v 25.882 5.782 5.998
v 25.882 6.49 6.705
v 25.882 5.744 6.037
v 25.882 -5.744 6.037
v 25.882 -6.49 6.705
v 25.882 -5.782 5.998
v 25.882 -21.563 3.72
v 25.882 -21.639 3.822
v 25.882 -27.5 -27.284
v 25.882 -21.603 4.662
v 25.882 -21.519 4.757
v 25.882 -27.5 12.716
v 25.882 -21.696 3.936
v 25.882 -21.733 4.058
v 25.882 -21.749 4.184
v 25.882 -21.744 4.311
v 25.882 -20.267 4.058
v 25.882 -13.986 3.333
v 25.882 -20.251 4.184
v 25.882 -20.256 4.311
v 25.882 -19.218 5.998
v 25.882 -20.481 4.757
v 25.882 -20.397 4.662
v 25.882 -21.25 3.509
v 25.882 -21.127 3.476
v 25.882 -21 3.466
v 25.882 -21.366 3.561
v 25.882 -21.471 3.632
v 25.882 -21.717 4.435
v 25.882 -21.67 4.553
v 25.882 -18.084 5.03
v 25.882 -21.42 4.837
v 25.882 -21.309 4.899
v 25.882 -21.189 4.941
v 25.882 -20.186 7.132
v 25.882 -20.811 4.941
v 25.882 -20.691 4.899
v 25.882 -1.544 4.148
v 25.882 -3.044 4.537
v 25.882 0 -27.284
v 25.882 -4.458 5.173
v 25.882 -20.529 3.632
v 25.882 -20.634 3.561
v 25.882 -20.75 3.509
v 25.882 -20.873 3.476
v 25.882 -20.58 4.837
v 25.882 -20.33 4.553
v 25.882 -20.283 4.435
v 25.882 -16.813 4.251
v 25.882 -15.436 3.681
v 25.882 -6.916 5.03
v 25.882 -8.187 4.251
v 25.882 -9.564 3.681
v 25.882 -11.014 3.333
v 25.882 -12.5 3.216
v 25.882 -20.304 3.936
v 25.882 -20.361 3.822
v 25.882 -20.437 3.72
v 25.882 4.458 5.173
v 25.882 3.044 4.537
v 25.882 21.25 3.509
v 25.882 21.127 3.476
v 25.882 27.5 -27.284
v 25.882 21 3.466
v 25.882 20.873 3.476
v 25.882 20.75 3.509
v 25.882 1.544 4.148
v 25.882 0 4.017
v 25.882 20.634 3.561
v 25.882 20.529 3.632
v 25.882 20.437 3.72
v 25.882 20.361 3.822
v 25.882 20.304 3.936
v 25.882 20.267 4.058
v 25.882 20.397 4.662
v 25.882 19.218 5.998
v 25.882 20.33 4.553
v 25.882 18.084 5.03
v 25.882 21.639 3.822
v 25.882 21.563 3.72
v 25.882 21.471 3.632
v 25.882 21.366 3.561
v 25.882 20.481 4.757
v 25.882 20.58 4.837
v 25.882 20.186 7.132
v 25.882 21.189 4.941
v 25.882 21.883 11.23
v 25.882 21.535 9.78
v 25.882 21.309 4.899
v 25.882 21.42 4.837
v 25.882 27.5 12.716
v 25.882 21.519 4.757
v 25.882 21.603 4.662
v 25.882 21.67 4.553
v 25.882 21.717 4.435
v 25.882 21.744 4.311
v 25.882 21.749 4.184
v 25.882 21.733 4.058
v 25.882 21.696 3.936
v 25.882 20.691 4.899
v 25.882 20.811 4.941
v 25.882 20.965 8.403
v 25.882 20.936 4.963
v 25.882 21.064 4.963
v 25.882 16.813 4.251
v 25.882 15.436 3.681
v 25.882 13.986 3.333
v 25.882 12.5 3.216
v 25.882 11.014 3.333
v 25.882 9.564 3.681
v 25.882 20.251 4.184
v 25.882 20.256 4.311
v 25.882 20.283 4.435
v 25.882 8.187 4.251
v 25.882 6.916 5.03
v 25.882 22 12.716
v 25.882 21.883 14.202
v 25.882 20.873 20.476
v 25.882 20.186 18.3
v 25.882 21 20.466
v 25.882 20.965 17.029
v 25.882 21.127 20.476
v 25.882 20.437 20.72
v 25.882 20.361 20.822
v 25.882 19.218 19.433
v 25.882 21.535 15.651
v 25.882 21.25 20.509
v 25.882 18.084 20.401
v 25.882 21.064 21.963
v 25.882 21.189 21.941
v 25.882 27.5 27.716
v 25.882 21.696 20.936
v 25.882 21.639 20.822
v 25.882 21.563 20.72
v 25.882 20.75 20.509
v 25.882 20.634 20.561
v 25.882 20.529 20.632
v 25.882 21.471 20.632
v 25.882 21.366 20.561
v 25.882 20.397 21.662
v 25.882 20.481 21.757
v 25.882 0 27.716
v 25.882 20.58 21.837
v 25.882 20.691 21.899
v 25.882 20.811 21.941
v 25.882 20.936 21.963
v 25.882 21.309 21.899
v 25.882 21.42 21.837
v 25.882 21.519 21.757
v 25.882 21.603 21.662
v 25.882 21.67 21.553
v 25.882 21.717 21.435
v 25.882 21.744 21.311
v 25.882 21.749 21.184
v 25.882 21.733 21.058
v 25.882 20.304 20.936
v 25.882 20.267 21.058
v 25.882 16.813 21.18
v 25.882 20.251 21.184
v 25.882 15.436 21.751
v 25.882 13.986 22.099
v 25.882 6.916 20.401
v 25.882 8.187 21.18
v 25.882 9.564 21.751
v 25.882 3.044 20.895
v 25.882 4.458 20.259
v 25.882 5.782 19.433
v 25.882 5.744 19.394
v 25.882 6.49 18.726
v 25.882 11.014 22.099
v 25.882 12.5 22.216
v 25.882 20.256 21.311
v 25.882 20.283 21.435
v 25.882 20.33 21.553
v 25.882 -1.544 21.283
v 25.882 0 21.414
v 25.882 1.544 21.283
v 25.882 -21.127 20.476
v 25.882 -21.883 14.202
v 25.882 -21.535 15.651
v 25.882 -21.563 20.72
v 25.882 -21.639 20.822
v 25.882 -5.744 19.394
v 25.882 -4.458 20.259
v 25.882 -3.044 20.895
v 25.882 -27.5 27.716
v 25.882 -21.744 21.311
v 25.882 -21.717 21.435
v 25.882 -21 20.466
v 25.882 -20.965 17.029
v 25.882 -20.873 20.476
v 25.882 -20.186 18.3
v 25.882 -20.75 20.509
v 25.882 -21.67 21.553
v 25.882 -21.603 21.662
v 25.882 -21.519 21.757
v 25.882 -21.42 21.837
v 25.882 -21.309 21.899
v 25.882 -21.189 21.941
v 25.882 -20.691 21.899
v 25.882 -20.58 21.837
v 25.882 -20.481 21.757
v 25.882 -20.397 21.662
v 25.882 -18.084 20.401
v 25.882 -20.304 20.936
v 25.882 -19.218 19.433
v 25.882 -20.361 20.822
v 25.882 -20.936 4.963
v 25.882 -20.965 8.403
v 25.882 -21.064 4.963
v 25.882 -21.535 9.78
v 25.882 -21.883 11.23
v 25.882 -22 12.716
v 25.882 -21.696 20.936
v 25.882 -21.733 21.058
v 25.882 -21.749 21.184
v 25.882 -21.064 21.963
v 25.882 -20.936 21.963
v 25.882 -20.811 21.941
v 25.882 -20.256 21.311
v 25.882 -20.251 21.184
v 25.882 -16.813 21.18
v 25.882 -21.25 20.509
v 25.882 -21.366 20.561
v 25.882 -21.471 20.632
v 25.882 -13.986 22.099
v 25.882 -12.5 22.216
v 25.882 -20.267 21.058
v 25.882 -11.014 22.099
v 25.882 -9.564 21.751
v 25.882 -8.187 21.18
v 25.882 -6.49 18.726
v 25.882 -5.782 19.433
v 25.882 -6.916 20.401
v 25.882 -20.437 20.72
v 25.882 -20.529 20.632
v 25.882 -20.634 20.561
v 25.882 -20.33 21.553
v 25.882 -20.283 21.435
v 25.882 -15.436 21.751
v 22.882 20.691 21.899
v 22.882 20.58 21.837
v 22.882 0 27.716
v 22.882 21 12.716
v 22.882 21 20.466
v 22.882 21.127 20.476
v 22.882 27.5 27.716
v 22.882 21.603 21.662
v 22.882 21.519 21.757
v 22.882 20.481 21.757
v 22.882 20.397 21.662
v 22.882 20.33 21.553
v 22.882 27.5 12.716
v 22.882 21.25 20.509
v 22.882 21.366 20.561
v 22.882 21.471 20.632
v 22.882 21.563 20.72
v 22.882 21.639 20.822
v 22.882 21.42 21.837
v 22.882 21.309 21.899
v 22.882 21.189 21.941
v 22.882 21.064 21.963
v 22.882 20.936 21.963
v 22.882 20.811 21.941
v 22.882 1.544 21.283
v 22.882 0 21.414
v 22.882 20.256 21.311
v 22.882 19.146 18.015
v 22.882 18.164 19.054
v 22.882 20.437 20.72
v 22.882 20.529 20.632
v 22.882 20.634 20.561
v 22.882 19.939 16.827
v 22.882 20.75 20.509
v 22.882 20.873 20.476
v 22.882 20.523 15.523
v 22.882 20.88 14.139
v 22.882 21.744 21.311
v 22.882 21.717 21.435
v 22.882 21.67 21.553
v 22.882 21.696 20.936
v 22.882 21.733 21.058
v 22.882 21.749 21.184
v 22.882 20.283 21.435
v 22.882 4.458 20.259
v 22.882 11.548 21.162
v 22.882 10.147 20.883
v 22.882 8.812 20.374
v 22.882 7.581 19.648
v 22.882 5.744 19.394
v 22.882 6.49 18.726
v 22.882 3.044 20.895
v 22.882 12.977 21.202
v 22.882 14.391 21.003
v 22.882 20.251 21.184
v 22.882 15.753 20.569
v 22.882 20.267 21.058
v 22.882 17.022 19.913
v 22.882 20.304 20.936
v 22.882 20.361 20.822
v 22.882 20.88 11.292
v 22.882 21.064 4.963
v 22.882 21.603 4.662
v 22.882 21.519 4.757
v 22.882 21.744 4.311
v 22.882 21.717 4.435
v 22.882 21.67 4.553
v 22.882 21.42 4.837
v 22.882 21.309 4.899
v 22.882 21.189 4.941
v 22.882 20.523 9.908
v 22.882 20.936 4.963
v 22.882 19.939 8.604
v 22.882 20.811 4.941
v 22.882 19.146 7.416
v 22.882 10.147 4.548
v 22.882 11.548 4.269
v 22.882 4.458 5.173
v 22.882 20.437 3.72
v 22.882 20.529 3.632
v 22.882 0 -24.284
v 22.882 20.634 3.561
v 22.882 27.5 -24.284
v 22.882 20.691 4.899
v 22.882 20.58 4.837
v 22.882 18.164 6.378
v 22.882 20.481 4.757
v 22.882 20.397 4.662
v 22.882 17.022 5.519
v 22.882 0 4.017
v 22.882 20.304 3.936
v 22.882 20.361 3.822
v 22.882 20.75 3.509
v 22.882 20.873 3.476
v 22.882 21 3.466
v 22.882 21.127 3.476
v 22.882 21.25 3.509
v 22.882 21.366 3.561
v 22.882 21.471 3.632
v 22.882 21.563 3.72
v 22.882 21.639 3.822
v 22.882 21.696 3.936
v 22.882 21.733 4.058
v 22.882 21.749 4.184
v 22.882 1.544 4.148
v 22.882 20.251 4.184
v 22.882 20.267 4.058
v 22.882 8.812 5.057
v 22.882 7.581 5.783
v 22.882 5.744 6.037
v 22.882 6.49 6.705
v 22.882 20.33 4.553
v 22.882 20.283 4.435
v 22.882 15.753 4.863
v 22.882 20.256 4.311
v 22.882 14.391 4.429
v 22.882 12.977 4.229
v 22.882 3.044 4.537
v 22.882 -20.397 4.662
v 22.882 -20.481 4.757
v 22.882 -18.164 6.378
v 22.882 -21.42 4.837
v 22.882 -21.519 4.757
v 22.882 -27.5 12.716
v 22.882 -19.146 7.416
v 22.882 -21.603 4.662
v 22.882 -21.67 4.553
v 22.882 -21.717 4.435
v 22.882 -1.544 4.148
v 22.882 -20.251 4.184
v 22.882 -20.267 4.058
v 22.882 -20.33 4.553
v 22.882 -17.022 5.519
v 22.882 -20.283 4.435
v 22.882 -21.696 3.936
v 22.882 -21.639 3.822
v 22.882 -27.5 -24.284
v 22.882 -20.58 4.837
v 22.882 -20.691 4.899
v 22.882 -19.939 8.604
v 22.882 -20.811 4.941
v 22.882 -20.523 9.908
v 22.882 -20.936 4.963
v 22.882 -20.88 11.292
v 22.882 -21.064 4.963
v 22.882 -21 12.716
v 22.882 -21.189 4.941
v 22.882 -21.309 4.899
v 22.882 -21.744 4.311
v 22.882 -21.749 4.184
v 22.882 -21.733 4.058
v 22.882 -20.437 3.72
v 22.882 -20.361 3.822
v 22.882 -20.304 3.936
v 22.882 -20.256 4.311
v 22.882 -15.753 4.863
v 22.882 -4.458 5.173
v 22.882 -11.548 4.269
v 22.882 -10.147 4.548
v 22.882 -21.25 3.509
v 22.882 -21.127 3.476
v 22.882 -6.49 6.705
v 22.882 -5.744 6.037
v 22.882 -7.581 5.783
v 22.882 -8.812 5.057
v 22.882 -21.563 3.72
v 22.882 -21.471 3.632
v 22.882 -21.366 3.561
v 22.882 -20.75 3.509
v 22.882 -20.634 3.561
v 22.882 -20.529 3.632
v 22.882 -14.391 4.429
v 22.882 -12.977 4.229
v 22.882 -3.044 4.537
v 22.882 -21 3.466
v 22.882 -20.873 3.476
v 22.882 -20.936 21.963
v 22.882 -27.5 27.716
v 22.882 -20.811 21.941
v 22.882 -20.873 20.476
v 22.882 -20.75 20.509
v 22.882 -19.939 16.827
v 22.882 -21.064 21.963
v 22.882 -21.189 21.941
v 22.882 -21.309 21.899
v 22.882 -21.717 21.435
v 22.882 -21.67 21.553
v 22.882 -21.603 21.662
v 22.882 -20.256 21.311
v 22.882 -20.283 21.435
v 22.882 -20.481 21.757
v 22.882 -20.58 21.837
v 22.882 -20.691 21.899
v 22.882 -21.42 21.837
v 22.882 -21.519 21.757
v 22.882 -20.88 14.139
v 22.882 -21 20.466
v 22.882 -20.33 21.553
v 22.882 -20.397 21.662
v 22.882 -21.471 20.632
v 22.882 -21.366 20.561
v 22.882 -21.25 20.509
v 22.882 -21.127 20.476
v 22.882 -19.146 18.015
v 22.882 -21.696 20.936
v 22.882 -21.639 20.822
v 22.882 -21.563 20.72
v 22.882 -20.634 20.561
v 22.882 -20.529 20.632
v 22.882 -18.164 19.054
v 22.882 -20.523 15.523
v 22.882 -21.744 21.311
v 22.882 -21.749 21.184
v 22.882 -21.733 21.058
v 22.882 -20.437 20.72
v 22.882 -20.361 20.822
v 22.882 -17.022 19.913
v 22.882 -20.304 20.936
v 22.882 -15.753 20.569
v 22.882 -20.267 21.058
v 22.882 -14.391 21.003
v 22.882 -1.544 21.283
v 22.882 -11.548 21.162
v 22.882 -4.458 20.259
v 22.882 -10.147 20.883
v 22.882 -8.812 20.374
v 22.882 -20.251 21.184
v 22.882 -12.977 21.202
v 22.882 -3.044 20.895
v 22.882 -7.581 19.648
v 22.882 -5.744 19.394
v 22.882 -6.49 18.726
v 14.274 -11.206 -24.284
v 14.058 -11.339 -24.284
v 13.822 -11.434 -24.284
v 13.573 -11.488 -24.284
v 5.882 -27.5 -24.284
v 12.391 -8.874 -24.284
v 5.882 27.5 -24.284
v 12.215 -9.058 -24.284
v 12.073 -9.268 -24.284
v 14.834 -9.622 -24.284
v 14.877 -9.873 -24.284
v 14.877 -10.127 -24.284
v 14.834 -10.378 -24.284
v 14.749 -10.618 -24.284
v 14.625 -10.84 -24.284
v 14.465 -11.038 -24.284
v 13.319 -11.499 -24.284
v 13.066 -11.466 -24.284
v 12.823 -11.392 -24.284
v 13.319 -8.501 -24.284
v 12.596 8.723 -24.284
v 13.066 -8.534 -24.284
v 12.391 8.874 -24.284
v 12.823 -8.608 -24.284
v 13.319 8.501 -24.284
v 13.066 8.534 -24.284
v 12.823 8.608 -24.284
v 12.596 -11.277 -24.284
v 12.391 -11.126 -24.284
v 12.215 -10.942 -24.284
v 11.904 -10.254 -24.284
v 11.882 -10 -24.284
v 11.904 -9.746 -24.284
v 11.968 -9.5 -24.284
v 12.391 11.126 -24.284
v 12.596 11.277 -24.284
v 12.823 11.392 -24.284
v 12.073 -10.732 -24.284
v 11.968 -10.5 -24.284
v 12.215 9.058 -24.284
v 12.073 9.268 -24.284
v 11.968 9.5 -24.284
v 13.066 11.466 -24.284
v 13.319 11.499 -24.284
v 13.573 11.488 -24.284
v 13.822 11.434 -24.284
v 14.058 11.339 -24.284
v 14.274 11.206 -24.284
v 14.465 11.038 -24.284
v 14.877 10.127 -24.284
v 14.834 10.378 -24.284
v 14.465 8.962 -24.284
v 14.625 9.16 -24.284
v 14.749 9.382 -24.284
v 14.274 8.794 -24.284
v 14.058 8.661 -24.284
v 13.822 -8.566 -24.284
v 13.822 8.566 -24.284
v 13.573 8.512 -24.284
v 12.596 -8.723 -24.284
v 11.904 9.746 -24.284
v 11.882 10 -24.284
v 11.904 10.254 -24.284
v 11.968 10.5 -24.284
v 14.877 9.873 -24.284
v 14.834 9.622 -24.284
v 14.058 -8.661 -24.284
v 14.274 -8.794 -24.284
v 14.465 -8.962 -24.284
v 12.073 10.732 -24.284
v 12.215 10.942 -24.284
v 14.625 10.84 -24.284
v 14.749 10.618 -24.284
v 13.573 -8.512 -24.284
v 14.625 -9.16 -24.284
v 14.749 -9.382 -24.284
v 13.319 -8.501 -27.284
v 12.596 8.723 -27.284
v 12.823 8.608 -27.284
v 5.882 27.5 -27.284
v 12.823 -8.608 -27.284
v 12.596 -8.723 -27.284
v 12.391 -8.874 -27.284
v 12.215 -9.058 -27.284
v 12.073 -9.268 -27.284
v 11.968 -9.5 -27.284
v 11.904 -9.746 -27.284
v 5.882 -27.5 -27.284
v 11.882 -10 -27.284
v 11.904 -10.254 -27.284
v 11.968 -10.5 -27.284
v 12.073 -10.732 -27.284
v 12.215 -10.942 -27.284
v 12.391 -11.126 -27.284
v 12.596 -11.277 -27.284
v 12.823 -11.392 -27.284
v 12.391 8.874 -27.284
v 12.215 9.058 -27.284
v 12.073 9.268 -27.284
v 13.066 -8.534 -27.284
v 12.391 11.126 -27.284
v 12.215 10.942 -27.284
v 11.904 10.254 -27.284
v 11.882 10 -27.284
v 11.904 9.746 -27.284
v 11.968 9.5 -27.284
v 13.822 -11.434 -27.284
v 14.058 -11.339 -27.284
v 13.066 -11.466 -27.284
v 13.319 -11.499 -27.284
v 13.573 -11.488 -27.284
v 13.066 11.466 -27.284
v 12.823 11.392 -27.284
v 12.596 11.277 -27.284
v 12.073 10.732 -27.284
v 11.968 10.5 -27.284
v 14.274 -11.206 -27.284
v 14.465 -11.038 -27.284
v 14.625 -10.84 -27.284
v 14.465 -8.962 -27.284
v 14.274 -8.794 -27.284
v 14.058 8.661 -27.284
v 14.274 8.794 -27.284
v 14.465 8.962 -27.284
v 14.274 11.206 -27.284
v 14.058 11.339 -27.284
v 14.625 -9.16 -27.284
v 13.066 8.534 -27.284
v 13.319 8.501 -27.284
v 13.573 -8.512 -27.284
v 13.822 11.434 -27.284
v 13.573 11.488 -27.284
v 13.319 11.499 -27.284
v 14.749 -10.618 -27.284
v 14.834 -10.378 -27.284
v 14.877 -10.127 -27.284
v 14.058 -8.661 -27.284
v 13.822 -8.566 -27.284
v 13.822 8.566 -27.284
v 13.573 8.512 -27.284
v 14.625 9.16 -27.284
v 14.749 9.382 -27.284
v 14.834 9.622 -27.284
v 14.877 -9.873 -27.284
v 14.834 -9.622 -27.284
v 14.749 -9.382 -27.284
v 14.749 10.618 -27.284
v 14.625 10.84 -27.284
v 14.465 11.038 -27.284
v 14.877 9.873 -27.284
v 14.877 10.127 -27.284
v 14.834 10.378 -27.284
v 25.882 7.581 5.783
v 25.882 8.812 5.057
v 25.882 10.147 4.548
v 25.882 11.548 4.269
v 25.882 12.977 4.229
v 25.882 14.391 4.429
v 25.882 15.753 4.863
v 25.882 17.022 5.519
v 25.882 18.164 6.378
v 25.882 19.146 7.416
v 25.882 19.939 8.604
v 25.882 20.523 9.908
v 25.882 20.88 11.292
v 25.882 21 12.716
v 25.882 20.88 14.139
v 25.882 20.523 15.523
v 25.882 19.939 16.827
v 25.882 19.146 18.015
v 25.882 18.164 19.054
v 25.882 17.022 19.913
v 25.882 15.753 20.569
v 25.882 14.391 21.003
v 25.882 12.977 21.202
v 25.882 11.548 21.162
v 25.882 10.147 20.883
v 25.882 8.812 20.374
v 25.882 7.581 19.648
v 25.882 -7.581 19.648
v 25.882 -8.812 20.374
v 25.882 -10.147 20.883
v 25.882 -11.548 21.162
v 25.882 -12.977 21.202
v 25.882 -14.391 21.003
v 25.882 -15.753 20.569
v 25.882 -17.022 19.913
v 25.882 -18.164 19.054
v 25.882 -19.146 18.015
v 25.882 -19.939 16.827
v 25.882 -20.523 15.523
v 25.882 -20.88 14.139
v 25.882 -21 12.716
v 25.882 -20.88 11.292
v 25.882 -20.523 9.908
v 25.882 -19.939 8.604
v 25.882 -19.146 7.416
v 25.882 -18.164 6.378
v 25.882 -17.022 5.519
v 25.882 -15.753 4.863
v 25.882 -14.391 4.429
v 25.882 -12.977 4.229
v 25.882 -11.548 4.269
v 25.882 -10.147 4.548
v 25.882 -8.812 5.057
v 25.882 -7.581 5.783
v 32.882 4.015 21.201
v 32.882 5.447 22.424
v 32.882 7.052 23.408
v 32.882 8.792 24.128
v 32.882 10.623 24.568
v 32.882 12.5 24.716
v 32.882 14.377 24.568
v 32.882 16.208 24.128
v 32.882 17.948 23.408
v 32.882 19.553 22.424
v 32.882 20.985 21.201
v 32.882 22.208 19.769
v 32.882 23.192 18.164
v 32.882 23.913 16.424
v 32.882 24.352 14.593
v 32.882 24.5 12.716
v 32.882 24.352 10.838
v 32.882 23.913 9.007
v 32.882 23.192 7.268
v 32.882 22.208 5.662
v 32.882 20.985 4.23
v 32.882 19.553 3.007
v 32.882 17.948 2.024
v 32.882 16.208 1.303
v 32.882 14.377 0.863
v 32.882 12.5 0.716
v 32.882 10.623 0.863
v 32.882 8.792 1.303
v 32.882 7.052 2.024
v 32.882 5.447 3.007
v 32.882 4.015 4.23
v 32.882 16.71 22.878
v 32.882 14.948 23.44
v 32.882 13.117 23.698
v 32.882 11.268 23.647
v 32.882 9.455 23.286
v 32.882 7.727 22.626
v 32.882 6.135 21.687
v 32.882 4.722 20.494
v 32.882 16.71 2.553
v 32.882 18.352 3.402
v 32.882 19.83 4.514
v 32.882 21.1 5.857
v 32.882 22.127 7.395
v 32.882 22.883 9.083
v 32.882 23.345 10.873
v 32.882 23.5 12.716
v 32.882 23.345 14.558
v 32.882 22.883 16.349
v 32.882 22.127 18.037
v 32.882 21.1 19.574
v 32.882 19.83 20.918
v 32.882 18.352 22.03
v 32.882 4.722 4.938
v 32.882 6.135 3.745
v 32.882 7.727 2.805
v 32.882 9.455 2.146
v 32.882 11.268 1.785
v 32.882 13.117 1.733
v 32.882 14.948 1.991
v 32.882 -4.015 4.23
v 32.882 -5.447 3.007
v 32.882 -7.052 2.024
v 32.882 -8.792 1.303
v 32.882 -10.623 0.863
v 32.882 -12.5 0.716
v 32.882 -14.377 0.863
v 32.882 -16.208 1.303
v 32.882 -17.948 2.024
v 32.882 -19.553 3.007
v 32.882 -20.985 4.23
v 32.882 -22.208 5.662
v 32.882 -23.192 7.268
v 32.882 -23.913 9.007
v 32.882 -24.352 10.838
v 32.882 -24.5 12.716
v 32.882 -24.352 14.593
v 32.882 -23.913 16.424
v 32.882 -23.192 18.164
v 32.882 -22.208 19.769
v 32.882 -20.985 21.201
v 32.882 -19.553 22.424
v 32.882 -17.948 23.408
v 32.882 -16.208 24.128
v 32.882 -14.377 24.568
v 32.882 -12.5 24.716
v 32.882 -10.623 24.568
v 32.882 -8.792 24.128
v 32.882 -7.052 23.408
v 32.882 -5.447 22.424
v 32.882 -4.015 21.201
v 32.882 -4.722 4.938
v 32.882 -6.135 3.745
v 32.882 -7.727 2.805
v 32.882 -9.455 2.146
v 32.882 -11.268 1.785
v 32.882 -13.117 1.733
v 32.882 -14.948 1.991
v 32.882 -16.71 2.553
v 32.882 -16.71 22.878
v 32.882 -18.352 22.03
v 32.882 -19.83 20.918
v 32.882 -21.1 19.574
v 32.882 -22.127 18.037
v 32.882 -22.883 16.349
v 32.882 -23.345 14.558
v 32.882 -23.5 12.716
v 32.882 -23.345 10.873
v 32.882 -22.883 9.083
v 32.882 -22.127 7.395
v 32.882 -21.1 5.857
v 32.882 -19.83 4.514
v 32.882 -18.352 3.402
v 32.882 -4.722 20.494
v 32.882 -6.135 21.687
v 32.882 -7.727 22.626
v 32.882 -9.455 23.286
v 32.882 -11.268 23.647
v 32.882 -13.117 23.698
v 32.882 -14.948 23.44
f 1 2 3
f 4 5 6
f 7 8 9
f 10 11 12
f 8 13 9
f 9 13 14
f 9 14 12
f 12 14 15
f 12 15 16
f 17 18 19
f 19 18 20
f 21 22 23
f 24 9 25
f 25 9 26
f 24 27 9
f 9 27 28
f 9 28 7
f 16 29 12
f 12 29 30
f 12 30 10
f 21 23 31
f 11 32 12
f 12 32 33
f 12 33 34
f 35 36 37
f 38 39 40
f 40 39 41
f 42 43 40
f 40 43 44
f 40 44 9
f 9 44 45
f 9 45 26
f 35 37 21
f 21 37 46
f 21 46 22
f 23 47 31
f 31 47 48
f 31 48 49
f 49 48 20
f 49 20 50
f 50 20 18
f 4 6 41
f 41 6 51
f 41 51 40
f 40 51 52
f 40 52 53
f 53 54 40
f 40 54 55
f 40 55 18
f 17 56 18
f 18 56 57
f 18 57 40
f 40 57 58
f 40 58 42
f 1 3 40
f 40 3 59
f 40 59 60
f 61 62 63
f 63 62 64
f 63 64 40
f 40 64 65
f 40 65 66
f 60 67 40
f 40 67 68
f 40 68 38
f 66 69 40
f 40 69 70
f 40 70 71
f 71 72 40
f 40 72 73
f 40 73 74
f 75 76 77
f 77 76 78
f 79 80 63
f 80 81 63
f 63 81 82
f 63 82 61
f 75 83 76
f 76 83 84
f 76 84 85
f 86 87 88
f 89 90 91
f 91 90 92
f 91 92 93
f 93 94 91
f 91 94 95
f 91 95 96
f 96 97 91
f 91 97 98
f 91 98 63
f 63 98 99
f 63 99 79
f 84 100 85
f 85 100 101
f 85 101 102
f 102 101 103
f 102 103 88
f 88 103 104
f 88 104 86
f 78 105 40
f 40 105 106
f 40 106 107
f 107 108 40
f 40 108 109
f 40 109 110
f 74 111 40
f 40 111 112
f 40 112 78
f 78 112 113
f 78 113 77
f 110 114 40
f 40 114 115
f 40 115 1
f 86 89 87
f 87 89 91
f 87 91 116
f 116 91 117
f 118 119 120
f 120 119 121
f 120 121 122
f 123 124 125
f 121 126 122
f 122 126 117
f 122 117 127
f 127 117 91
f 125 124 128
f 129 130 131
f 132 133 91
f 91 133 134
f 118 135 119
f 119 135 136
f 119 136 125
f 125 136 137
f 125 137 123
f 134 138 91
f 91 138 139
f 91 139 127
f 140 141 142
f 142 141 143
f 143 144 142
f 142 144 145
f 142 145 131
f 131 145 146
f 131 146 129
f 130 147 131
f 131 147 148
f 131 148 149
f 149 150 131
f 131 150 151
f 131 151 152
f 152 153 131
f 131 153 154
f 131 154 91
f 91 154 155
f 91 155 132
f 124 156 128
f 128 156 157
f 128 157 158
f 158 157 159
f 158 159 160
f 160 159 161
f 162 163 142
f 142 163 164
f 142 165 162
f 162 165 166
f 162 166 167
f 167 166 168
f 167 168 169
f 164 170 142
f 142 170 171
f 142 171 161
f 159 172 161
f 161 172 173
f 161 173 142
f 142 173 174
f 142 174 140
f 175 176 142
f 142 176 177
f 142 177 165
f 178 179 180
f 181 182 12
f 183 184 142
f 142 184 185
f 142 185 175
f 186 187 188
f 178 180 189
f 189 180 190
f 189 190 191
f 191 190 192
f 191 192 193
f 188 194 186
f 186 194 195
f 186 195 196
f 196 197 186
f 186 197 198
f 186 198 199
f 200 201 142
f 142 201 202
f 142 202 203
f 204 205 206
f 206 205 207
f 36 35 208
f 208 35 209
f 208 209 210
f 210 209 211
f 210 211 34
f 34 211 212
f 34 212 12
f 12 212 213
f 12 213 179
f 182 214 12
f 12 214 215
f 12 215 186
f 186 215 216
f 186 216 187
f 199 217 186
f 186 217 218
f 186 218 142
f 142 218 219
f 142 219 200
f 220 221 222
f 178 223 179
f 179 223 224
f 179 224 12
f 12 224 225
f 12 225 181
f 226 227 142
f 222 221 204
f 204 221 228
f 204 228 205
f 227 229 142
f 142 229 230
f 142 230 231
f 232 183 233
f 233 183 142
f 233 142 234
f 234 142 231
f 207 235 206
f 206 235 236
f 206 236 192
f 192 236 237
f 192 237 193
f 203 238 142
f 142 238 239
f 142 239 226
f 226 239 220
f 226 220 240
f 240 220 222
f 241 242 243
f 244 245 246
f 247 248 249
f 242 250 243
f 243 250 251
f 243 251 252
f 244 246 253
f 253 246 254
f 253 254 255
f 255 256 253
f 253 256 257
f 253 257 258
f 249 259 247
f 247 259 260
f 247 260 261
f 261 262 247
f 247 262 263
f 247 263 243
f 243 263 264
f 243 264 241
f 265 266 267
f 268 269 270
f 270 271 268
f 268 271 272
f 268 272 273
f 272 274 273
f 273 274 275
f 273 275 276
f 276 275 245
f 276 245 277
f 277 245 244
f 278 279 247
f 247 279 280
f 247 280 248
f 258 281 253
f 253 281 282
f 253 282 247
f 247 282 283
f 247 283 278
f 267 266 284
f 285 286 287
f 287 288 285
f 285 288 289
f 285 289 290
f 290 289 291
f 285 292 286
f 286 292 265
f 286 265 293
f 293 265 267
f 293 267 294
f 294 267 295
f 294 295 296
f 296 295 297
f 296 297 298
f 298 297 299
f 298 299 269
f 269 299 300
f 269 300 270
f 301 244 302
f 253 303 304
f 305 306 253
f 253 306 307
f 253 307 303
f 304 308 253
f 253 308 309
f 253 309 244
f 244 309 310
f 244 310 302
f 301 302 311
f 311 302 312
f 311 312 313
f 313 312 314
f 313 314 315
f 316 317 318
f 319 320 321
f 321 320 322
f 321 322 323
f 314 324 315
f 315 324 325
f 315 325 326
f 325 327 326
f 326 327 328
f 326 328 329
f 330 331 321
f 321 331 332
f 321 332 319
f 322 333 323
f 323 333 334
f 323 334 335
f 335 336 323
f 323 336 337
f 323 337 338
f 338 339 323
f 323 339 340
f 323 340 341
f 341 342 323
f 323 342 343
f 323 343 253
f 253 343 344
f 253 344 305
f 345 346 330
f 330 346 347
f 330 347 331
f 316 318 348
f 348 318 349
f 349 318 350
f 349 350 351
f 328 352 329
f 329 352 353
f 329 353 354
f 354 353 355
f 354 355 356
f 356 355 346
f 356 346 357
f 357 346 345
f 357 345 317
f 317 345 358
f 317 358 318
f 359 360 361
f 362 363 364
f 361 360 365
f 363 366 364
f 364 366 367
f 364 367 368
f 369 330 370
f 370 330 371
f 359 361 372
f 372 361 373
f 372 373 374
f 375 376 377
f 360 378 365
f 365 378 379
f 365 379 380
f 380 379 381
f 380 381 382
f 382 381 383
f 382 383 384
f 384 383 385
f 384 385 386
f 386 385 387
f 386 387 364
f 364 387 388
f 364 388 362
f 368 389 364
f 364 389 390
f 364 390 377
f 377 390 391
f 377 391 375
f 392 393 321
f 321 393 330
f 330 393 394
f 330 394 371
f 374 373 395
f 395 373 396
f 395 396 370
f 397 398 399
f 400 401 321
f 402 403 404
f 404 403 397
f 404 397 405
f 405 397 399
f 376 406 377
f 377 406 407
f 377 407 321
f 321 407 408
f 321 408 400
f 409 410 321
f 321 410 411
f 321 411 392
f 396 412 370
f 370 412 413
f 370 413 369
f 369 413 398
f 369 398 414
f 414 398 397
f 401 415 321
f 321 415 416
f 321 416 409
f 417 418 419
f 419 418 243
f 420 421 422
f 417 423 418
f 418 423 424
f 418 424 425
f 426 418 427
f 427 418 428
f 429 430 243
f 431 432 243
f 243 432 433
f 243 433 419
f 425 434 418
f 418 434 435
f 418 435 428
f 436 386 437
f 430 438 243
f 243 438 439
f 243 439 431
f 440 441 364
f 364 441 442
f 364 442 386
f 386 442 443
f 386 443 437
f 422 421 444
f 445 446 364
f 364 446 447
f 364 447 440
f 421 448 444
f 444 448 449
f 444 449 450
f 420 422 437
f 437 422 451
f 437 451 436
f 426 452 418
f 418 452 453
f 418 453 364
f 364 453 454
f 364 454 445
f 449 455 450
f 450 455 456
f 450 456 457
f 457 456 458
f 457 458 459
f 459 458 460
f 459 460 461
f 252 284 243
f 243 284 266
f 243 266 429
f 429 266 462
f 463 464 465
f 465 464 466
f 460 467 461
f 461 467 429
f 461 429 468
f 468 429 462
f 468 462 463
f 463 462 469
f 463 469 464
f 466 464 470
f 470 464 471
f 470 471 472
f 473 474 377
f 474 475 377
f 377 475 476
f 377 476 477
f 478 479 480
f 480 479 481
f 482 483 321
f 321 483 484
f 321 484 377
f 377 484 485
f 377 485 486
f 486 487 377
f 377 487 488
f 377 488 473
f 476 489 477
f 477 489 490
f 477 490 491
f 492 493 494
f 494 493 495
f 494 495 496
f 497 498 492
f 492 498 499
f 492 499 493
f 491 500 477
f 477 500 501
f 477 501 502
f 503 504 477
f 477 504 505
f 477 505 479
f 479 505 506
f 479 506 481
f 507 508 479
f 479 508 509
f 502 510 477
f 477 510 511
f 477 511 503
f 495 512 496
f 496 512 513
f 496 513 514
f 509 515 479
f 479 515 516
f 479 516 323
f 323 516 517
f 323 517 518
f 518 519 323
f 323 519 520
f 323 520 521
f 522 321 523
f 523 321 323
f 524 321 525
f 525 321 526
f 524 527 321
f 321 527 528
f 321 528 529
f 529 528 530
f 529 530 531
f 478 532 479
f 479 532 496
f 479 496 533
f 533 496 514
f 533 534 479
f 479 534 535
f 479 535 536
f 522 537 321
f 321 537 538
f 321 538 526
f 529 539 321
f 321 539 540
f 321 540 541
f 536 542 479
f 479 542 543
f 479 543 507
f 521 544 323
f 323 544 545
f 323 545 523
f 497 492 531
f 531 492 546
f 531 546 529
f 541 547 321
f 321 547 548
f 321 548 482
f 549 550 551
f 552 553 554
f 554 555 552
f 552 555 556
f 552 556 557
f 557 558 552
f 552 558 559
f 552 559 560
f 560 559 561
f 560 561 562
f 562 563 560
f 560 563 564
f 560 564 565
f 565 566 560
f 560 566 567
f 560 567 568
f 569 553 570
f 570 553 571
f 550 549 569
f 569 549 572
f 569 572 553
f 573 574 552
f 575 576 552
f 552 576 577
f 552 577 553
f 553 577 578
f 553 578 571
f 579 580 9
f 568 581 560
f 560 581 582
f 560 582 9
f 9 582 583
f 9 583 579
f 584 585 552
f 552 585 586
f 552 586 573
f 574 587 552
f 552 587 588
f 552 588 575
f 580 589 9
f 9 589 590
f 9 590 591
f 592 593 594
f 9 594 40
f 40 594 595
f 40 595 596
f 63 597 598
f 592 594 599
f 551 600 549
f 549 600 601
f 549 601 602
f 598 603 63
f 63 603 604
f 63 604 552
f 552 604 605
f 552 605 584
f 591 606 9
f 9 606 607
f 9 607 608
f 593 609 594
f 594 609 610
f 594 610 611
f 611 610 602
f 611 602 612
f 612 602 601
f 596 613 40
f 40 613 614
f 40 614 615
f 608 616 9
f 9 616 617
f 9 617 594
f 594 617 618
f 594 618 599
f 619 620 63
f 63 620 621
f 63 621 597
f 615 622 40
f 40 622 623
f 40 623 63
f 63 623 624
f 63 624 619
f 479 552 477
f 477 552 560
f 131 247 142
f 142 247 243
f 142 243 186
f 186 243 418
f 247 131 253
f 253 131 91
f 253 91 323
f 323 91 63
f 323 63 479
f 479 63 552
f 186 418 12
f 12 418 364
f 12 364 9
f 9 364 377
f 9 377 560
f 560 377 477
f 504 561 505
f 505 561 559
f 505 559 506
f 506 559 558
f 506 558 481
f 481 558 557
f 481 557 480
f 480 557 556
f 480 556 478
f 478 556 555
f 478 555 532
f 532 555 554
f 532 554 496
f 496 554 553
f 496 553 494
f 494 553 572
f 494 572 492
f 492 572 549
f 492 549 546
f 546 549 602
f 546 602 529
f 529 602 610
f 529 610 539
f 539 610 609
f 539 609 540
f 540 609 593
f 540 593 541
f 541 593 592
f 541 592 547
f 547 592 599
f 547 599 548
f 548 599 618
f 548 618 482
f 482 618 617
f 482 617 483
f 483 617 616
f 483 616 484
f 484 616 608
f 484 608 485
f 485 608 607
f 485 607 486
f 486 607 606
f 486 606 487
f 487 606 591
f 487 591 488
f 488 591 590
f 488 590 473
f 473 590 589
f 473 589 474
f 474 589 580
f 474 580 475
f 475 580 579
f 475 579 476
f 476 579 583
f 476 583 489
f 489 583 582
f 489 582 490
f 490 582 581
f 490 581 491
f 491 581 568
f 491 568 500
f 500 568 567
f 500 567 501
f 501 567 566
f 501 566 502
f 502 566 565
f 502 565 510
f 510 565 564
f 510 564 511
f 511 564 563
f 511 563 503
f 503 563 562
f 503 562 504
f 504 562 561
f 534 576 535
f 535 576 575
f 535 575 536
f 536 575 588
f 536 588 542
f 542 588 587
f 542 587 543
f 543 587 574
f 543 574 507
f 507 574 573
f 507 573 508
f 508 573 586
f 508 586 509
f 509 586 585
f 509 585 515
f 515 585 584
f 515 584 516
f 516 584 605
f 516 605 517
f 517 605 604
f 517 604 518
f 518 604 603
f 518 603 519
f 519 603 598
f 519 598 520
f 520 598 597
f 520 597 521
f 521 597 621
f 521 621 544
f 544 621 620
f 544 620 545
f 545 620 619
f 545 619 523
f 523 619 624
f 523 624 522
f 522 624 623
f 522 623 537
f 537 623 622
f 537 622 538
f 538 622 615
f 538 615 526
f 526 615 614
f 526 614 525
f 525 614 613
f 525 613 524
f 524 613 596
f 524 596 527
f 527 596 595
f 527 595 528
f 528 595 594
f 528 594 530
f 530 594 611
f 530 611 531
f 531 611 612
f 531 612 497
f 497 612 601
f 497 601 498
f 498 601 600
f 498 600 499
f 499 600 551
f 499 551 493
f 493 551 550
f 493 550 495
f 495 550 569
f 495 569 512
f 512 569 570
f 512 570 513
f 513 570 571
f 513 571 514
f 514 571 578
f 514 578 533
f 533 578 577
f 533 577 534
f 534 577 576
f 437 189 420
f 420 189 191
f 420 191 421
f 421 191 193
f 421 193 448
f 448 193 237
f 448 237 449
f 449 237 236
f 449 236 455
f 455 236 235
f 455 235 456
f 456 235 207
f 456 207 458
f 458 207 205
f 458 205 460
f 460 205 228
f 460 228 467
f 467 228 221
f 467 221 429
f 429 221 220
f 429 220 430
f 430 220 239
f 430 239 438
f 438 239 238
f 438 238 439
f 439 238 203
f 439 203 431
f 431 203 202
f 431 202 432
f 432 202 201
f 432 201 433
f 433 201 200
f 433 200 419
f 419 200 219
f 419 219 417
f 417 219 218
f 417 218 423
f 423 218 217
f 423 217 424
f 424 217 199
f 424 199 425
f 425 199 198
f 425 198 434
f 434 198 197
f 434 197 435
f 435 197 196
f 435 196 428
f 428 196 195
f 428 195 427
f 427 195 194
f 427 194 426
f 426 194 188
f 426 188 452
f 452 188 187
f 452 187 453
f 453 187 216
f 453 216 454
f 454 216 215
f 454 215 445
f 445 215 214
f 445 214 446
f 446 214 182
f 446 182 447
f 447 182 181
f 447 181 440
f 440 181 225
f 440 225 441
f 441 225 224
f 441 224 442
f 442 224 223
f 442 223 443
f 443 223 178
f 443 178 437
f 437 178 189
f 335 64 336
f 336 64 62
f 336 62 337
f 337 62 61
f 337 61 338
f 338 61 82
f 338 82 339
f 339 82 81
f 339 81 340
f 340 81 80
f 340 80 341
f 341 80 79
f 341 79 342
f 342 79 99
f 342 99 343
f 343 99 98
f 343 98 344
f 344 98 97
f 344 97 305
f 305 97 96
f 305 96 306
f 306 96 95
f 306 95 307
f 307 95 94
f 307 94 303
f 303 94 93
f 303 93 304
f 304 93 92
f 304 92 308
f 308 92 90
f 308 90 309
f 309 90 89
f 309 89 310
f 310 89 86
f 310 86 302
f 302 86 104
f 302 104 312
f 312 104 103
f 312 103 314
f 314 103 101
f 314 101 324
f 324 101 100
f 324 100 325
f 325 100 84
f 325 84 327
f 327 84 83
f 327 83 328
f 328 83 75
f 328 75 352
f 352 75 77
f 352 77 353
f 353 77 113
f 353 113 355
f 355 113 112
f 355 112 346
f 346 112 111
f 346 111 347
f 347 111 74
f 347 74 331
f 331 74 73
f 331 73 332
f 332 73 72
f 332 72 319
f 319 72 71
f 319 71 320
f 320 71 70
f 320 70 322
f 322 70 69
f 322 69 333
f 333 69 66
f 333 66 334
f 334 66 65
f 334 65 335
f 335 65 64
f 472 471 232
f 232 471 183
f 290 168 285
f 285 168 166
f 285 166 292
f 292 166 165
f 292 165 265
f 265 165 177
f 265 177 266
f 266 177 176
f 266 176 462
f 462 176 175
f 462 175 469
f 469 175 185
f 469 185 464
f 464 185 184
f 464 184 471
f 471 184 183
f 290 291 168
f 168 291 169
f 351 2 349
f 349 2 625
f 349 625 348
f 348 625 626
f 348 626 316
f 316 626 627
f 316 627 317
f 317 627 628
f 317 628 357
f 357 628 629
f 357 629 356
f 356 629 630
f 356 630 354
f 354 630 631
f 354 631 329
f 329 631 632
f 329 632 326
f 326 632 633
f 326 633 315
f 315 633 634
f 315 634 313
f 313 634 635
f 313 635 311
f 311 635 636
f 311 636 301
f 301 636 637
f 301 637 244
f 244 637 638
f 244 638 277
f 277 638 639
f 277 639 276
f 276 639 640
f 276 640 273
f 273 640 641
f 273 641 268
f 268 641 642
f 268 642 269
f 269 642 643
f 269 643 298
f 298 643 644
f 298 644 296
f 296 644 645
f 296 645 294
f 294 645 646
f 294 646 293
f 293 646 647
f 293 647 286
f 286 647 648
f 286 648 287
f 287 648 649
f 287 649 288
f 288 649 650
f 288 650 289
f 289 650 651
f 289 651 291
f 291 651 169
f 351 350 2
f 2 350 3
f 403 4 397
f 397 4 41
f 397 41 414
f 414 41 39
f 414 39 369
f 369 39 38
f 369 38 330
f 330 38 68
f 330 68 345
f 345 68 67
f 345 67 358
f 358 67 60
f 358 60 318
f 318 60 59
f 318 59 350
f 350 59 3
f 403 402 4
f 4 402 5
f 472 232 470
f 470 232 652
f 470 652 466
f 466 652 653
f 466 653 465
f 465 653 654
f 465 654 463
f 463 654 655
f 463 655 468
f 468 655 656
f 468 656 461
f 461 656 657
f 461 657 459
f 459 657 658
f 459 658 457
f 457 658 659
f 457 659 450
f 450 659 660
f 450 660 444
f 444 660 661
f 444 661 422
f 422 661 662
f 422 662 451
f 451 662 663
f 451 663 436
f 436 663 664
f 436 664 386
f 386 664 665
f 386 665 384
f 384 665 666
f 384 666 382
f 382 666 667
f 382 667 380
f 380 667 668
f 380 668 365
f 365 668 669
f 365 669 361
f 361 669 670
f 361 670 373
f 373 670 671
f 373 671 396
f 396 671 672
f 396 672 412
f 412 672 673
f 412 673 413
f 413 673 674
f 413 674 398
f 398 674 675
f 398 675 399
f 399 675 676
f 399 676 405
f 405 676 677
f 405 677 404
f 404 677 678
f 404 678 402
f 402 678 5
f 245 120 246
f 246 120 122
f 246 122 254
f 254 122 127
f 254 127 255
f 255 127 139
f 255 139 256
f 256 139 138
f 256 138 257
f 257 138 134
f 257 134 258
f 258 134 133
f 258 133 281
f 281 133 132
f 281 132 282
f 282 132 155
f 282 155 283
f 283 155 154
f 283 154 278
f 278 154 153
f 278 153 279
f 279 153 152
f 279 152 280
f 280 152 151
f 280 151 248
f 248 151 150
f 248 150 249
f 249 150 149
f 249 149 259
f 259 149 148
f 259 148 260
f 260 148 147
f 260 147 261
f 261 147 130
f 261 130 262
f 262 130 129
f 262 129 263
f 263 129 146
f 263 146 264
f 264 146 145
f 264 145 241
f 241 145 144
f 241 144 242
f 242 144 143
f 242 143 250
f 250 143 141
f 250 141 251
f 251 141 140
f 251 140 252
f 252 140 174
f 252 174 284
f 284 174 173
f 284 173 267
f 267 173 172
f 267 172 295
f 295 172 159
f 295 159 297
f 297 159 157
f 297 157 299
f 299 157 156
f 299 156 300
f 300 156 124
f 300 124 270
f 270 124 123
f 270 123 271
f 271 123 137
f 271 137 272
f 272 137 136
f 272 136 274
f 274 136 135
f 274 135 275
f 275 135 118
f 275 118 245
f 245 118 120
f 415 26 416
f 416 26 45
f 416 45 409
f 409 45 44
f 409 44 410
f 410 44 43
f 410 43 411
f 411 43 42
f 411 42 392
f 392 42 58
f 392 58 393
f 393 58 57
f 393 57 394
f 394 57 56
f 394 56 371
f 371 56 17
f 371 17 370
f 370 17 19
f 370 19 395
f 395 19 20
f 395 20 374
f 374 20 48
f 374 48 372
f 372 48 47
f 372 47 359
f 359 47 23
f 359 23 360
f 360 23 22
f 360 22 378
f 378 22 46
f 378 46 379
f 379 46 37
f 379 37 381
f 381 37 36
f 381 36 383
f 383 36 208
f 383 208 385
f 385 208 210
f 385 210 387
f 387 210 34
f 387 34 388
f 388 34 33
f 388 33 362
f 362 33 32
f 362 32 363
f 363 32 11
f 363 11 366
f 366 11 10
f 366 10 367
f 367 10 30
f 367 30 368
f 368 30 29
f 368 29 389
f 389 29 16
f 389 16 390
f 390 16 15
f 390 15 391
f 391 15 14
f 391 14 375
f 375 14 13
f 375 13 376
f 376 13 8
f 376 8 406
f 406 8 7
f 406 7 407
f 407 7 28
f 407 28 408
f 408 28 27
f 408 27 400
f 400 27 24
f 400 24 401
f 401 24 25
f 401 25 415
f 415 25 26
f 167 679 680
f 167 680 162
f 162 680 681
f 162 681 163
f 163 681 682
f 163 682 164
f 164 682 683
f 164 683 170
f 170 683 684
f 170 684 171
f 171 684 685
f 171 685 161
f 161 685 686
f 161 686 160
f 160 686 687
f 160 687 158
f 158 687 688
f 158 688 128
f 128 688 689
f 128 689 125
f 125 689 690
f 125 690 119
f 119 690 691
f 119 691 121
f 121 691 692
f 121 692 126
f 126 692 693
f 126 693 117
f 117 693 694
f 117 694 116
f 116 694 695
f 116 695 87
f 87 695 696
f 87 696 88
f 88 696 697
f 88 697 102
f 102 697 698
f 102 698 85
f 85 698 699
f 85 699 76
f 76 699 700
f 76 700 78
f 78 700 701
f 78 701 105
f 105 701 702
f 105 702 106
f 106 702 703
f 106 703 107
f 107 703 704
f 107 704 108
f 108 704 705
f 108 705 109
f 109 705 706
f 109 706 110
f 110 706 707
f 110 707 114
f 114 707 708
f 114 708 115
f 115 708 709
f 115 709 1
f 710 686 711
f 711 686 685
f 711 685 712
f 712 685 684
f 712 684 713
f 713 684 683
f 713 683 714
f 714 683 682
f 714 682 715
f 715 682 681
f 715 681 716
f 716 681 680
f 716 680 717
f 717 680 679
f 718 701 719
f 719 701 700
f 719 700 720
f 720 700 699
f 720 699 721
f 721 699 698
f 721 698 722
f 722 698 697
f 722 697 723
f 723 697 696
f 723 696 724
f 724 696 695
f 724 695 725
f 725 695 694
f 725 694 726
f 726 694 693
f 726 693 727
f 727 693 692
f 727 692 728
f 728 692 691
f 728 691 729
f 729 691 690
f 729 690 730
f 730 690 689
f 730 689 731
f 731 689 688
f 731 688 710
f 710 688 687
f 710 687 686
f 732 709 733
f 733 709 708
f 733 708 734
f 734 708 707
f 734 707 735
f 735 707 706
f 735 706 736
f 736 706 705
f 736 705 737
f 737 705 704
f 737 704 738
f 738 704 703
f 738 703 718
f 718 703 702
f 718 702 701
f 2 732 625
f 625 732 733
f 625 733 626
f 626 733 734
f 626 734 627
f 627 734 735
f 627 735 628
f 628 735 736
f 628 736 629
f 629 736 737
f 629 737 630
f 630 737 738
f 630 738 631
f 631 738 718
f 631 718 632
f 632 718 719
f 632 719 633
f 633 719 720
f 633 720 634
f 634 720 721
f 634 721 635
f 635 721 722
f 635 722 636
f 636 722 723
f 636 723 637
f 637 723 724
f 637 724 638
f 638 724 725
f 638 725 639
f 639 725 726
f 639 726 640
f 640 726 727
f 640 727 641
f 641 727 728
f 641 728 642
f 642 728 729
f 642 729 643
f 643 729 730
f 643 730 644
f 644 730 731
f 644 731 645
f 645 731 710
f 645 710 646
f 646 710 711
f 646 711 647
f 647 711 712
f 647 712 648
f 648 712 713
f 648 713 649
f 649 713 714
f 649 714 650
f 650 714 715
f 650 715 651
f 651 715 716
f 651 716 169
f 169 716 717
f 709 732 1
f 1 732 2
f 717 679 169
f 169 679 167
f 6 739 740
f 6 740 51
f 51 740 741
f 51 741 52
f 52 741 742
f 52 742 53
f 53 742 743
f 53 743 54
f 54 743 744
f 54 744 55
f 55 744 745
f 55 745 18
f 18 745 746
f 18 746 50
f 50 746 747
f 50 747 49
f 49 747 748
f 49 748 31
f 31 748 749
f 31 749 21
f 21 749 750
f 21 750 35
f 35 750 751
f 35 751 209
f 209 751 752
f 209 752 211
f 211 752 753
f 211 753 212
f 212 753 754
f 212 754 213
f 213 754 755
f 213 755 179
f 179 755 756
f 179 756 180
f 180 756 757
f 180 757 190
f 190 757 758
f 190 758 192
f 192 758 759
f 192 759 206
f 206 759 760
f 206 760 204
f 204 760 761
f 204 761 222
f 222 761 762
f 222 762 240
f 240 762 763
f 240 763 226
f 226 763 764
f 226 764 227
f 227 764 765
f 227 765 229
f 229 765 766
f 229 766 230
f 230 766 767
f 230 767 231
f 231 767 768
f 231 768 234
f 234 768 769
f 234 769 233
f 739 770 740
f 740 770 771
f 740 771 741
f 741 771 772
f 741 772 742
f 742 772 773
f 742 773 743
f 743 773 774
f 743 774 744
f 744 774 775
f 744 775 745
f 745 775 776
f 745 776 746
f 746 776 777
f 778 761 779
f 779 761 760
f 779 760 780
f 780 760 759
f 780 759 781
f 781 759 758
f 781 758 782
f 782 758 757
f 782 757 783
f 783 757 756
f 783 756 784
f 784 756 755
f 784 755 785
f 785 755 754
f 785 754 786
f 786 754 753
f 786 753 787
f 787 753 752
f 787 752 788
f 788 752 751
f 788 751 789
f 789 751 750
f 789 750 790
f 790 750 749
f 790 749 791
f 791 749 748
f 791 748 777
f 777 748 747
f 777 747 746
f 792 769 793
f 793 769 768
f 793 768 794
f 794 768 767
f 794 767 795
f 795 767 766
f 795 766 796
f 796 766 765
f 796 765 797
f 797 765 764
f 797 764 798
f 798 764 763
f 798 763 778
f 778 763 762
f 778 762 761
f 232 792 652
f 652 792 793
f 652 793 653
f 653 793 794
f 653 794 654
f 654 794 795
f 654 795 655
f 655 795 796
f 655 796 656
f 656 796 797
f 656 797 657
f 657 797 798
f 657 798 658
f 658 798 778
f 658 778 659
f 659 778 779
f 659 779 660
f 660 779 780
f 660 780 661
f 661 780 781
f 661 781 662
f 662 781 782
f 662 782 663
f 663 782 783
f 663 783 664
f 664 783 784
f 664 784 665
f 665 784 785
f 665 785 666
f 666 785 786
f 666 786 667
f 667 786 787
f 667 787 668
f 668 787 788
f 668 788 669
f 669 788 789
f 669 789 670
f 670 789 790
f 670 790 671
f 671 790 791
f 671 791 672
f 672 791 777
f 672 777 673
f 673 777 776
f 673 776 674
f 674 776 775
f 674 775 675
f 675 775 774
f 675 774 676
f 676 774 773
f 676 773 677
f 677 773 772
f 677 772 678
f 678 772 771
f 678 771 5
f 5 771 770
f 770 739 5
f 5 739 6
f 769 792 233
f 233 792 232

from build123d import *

# Parameters (mm, degrees)
EXTRUDE_1_DEPTH     = 27.5
SKETCH_2_R          = 1.5
CUT_EXTRUDE_1_DEPTH = 3
SKETCH_3_R          = 0.75
CUT_EXTRUDE_3_DEPTH = 3
REVOLVE_1_ANGLE     = 270


with BuildPart() as part:
    # 草图1 → 凸台-拉伸1 (new, symmetric)
    with BuildSketch(Plane(origin=(0, 0, 0), x_dir=(1, 0, 0), z_dir=(0, 1, 0))):
        Polygon((5.882352941, 27.284313725), (25.882352941, 27.284313725), (25.882352941, -27.715686275), (22.882352941, -27.715686275), (22.882352941, 24.284313725), (5.882352941, 24.284313725), align=None)
    extrude(amount=EXTRUDE_1_DEPTH, both=True)

    # 草图2 → 切除-拉伸1 (cut)
    with BuildSketch(Plane(origin=(0, 0, -27.284313725), x_dir=(-1, 0, 0), z_dir=(0, 0, -1))):
        with Locations((-13.382352941, 10)):
            Circle(SKETCH_2_R)
        with Locations((-13.382352941, -10)):
            Circle(SKETCH_2_R)
    extrude(amount=-CUT_EXTRUDE_1_DEPTH, mode=Mode.SUBTRACT)

    # 草图3 → 切除-拉伸3 (cut)
    with BuildSketch(Plane(origin=(25.882352941, 0, 0), x_dir=(0, 0, -1), z_dir=(1, 0, 0))):
        with BuildLine():
            ThreePointArc((-19.394463571, 5.743970558), (-21.414171084, 0), (-19.394463571, -5.743970558))
            Line((-19.394463571, -5.743970558), (-18.726093915, -6.48959236))
            ThreePointArc((-18.726093915, -6.48959236), (-12.715686275, -21), (-6.705278634, -6.48959236))
            Line((-6.705278634, -6.48959236), (-6.036908978, -5.743970558))
            ThreePointArc((-6.036908978, -5.743970558), (-4.017201465, 0), (-6.036908978, 5.743970558))
            Line((-6.036908978, 5.743970558), (-6.705278634, 6.48959236))
            ThreePointArc((-6.705278634, 6.48959236), (-12.715686275, 21), (-18.726093915, 6.48959236))
            Line((-18.726093915, 6.48959236), (-19.394463571, 5.743970558))
        make_face()
        with Locations((-4.215686275, -21)):
            Circle(SKETCH_3_R)
        with Locations((-21.215686275, -21)):
            Circle(SKETCH_3_R)
        with Locations((-4.215686275, 21)):
            Circle(SKETCH_3_R)
        with Locations((-21.215686275, 21)):
            Circle(SKETCH_3_R)
    extrude(amount=-CUT_EXTRUDE_3_DEPTH, mode=Mode.SUBTRACT)

    # 草图5 → 旋转1 (revolve, symmetric)
    with BuildSketch(Plane(origin=(0, 0, 12.715686275), x_dir=(0, -1, 0), z_dir=(0, 0, 1))) as revolve_1_sk:
        Polygon((-22, 25.882352941), (-24.5, 32.882352941), (-23.5, 32.882352941), (-21, 25.882352941), align=None)
    revolve_1 = revolve(axis=Axis((32.882352941, 12.5, 12.715686275), (-1, 0, 0)), revolution_arc=REVOLVE_1_ANGLE / 2)
    revolve_1 = revolve_1 + revolve(revolve_1_sk.sketch, axis=Axis((32.882352941, 12.5, 12.715686275), (1, 0, 0)), revolution_arc=REVOLVE_1_ANGLE / 2)

    # 镜向1: 旋转1 across plane
    add(revolve_1.mirror(Plane.ZX))


solid = part.part
